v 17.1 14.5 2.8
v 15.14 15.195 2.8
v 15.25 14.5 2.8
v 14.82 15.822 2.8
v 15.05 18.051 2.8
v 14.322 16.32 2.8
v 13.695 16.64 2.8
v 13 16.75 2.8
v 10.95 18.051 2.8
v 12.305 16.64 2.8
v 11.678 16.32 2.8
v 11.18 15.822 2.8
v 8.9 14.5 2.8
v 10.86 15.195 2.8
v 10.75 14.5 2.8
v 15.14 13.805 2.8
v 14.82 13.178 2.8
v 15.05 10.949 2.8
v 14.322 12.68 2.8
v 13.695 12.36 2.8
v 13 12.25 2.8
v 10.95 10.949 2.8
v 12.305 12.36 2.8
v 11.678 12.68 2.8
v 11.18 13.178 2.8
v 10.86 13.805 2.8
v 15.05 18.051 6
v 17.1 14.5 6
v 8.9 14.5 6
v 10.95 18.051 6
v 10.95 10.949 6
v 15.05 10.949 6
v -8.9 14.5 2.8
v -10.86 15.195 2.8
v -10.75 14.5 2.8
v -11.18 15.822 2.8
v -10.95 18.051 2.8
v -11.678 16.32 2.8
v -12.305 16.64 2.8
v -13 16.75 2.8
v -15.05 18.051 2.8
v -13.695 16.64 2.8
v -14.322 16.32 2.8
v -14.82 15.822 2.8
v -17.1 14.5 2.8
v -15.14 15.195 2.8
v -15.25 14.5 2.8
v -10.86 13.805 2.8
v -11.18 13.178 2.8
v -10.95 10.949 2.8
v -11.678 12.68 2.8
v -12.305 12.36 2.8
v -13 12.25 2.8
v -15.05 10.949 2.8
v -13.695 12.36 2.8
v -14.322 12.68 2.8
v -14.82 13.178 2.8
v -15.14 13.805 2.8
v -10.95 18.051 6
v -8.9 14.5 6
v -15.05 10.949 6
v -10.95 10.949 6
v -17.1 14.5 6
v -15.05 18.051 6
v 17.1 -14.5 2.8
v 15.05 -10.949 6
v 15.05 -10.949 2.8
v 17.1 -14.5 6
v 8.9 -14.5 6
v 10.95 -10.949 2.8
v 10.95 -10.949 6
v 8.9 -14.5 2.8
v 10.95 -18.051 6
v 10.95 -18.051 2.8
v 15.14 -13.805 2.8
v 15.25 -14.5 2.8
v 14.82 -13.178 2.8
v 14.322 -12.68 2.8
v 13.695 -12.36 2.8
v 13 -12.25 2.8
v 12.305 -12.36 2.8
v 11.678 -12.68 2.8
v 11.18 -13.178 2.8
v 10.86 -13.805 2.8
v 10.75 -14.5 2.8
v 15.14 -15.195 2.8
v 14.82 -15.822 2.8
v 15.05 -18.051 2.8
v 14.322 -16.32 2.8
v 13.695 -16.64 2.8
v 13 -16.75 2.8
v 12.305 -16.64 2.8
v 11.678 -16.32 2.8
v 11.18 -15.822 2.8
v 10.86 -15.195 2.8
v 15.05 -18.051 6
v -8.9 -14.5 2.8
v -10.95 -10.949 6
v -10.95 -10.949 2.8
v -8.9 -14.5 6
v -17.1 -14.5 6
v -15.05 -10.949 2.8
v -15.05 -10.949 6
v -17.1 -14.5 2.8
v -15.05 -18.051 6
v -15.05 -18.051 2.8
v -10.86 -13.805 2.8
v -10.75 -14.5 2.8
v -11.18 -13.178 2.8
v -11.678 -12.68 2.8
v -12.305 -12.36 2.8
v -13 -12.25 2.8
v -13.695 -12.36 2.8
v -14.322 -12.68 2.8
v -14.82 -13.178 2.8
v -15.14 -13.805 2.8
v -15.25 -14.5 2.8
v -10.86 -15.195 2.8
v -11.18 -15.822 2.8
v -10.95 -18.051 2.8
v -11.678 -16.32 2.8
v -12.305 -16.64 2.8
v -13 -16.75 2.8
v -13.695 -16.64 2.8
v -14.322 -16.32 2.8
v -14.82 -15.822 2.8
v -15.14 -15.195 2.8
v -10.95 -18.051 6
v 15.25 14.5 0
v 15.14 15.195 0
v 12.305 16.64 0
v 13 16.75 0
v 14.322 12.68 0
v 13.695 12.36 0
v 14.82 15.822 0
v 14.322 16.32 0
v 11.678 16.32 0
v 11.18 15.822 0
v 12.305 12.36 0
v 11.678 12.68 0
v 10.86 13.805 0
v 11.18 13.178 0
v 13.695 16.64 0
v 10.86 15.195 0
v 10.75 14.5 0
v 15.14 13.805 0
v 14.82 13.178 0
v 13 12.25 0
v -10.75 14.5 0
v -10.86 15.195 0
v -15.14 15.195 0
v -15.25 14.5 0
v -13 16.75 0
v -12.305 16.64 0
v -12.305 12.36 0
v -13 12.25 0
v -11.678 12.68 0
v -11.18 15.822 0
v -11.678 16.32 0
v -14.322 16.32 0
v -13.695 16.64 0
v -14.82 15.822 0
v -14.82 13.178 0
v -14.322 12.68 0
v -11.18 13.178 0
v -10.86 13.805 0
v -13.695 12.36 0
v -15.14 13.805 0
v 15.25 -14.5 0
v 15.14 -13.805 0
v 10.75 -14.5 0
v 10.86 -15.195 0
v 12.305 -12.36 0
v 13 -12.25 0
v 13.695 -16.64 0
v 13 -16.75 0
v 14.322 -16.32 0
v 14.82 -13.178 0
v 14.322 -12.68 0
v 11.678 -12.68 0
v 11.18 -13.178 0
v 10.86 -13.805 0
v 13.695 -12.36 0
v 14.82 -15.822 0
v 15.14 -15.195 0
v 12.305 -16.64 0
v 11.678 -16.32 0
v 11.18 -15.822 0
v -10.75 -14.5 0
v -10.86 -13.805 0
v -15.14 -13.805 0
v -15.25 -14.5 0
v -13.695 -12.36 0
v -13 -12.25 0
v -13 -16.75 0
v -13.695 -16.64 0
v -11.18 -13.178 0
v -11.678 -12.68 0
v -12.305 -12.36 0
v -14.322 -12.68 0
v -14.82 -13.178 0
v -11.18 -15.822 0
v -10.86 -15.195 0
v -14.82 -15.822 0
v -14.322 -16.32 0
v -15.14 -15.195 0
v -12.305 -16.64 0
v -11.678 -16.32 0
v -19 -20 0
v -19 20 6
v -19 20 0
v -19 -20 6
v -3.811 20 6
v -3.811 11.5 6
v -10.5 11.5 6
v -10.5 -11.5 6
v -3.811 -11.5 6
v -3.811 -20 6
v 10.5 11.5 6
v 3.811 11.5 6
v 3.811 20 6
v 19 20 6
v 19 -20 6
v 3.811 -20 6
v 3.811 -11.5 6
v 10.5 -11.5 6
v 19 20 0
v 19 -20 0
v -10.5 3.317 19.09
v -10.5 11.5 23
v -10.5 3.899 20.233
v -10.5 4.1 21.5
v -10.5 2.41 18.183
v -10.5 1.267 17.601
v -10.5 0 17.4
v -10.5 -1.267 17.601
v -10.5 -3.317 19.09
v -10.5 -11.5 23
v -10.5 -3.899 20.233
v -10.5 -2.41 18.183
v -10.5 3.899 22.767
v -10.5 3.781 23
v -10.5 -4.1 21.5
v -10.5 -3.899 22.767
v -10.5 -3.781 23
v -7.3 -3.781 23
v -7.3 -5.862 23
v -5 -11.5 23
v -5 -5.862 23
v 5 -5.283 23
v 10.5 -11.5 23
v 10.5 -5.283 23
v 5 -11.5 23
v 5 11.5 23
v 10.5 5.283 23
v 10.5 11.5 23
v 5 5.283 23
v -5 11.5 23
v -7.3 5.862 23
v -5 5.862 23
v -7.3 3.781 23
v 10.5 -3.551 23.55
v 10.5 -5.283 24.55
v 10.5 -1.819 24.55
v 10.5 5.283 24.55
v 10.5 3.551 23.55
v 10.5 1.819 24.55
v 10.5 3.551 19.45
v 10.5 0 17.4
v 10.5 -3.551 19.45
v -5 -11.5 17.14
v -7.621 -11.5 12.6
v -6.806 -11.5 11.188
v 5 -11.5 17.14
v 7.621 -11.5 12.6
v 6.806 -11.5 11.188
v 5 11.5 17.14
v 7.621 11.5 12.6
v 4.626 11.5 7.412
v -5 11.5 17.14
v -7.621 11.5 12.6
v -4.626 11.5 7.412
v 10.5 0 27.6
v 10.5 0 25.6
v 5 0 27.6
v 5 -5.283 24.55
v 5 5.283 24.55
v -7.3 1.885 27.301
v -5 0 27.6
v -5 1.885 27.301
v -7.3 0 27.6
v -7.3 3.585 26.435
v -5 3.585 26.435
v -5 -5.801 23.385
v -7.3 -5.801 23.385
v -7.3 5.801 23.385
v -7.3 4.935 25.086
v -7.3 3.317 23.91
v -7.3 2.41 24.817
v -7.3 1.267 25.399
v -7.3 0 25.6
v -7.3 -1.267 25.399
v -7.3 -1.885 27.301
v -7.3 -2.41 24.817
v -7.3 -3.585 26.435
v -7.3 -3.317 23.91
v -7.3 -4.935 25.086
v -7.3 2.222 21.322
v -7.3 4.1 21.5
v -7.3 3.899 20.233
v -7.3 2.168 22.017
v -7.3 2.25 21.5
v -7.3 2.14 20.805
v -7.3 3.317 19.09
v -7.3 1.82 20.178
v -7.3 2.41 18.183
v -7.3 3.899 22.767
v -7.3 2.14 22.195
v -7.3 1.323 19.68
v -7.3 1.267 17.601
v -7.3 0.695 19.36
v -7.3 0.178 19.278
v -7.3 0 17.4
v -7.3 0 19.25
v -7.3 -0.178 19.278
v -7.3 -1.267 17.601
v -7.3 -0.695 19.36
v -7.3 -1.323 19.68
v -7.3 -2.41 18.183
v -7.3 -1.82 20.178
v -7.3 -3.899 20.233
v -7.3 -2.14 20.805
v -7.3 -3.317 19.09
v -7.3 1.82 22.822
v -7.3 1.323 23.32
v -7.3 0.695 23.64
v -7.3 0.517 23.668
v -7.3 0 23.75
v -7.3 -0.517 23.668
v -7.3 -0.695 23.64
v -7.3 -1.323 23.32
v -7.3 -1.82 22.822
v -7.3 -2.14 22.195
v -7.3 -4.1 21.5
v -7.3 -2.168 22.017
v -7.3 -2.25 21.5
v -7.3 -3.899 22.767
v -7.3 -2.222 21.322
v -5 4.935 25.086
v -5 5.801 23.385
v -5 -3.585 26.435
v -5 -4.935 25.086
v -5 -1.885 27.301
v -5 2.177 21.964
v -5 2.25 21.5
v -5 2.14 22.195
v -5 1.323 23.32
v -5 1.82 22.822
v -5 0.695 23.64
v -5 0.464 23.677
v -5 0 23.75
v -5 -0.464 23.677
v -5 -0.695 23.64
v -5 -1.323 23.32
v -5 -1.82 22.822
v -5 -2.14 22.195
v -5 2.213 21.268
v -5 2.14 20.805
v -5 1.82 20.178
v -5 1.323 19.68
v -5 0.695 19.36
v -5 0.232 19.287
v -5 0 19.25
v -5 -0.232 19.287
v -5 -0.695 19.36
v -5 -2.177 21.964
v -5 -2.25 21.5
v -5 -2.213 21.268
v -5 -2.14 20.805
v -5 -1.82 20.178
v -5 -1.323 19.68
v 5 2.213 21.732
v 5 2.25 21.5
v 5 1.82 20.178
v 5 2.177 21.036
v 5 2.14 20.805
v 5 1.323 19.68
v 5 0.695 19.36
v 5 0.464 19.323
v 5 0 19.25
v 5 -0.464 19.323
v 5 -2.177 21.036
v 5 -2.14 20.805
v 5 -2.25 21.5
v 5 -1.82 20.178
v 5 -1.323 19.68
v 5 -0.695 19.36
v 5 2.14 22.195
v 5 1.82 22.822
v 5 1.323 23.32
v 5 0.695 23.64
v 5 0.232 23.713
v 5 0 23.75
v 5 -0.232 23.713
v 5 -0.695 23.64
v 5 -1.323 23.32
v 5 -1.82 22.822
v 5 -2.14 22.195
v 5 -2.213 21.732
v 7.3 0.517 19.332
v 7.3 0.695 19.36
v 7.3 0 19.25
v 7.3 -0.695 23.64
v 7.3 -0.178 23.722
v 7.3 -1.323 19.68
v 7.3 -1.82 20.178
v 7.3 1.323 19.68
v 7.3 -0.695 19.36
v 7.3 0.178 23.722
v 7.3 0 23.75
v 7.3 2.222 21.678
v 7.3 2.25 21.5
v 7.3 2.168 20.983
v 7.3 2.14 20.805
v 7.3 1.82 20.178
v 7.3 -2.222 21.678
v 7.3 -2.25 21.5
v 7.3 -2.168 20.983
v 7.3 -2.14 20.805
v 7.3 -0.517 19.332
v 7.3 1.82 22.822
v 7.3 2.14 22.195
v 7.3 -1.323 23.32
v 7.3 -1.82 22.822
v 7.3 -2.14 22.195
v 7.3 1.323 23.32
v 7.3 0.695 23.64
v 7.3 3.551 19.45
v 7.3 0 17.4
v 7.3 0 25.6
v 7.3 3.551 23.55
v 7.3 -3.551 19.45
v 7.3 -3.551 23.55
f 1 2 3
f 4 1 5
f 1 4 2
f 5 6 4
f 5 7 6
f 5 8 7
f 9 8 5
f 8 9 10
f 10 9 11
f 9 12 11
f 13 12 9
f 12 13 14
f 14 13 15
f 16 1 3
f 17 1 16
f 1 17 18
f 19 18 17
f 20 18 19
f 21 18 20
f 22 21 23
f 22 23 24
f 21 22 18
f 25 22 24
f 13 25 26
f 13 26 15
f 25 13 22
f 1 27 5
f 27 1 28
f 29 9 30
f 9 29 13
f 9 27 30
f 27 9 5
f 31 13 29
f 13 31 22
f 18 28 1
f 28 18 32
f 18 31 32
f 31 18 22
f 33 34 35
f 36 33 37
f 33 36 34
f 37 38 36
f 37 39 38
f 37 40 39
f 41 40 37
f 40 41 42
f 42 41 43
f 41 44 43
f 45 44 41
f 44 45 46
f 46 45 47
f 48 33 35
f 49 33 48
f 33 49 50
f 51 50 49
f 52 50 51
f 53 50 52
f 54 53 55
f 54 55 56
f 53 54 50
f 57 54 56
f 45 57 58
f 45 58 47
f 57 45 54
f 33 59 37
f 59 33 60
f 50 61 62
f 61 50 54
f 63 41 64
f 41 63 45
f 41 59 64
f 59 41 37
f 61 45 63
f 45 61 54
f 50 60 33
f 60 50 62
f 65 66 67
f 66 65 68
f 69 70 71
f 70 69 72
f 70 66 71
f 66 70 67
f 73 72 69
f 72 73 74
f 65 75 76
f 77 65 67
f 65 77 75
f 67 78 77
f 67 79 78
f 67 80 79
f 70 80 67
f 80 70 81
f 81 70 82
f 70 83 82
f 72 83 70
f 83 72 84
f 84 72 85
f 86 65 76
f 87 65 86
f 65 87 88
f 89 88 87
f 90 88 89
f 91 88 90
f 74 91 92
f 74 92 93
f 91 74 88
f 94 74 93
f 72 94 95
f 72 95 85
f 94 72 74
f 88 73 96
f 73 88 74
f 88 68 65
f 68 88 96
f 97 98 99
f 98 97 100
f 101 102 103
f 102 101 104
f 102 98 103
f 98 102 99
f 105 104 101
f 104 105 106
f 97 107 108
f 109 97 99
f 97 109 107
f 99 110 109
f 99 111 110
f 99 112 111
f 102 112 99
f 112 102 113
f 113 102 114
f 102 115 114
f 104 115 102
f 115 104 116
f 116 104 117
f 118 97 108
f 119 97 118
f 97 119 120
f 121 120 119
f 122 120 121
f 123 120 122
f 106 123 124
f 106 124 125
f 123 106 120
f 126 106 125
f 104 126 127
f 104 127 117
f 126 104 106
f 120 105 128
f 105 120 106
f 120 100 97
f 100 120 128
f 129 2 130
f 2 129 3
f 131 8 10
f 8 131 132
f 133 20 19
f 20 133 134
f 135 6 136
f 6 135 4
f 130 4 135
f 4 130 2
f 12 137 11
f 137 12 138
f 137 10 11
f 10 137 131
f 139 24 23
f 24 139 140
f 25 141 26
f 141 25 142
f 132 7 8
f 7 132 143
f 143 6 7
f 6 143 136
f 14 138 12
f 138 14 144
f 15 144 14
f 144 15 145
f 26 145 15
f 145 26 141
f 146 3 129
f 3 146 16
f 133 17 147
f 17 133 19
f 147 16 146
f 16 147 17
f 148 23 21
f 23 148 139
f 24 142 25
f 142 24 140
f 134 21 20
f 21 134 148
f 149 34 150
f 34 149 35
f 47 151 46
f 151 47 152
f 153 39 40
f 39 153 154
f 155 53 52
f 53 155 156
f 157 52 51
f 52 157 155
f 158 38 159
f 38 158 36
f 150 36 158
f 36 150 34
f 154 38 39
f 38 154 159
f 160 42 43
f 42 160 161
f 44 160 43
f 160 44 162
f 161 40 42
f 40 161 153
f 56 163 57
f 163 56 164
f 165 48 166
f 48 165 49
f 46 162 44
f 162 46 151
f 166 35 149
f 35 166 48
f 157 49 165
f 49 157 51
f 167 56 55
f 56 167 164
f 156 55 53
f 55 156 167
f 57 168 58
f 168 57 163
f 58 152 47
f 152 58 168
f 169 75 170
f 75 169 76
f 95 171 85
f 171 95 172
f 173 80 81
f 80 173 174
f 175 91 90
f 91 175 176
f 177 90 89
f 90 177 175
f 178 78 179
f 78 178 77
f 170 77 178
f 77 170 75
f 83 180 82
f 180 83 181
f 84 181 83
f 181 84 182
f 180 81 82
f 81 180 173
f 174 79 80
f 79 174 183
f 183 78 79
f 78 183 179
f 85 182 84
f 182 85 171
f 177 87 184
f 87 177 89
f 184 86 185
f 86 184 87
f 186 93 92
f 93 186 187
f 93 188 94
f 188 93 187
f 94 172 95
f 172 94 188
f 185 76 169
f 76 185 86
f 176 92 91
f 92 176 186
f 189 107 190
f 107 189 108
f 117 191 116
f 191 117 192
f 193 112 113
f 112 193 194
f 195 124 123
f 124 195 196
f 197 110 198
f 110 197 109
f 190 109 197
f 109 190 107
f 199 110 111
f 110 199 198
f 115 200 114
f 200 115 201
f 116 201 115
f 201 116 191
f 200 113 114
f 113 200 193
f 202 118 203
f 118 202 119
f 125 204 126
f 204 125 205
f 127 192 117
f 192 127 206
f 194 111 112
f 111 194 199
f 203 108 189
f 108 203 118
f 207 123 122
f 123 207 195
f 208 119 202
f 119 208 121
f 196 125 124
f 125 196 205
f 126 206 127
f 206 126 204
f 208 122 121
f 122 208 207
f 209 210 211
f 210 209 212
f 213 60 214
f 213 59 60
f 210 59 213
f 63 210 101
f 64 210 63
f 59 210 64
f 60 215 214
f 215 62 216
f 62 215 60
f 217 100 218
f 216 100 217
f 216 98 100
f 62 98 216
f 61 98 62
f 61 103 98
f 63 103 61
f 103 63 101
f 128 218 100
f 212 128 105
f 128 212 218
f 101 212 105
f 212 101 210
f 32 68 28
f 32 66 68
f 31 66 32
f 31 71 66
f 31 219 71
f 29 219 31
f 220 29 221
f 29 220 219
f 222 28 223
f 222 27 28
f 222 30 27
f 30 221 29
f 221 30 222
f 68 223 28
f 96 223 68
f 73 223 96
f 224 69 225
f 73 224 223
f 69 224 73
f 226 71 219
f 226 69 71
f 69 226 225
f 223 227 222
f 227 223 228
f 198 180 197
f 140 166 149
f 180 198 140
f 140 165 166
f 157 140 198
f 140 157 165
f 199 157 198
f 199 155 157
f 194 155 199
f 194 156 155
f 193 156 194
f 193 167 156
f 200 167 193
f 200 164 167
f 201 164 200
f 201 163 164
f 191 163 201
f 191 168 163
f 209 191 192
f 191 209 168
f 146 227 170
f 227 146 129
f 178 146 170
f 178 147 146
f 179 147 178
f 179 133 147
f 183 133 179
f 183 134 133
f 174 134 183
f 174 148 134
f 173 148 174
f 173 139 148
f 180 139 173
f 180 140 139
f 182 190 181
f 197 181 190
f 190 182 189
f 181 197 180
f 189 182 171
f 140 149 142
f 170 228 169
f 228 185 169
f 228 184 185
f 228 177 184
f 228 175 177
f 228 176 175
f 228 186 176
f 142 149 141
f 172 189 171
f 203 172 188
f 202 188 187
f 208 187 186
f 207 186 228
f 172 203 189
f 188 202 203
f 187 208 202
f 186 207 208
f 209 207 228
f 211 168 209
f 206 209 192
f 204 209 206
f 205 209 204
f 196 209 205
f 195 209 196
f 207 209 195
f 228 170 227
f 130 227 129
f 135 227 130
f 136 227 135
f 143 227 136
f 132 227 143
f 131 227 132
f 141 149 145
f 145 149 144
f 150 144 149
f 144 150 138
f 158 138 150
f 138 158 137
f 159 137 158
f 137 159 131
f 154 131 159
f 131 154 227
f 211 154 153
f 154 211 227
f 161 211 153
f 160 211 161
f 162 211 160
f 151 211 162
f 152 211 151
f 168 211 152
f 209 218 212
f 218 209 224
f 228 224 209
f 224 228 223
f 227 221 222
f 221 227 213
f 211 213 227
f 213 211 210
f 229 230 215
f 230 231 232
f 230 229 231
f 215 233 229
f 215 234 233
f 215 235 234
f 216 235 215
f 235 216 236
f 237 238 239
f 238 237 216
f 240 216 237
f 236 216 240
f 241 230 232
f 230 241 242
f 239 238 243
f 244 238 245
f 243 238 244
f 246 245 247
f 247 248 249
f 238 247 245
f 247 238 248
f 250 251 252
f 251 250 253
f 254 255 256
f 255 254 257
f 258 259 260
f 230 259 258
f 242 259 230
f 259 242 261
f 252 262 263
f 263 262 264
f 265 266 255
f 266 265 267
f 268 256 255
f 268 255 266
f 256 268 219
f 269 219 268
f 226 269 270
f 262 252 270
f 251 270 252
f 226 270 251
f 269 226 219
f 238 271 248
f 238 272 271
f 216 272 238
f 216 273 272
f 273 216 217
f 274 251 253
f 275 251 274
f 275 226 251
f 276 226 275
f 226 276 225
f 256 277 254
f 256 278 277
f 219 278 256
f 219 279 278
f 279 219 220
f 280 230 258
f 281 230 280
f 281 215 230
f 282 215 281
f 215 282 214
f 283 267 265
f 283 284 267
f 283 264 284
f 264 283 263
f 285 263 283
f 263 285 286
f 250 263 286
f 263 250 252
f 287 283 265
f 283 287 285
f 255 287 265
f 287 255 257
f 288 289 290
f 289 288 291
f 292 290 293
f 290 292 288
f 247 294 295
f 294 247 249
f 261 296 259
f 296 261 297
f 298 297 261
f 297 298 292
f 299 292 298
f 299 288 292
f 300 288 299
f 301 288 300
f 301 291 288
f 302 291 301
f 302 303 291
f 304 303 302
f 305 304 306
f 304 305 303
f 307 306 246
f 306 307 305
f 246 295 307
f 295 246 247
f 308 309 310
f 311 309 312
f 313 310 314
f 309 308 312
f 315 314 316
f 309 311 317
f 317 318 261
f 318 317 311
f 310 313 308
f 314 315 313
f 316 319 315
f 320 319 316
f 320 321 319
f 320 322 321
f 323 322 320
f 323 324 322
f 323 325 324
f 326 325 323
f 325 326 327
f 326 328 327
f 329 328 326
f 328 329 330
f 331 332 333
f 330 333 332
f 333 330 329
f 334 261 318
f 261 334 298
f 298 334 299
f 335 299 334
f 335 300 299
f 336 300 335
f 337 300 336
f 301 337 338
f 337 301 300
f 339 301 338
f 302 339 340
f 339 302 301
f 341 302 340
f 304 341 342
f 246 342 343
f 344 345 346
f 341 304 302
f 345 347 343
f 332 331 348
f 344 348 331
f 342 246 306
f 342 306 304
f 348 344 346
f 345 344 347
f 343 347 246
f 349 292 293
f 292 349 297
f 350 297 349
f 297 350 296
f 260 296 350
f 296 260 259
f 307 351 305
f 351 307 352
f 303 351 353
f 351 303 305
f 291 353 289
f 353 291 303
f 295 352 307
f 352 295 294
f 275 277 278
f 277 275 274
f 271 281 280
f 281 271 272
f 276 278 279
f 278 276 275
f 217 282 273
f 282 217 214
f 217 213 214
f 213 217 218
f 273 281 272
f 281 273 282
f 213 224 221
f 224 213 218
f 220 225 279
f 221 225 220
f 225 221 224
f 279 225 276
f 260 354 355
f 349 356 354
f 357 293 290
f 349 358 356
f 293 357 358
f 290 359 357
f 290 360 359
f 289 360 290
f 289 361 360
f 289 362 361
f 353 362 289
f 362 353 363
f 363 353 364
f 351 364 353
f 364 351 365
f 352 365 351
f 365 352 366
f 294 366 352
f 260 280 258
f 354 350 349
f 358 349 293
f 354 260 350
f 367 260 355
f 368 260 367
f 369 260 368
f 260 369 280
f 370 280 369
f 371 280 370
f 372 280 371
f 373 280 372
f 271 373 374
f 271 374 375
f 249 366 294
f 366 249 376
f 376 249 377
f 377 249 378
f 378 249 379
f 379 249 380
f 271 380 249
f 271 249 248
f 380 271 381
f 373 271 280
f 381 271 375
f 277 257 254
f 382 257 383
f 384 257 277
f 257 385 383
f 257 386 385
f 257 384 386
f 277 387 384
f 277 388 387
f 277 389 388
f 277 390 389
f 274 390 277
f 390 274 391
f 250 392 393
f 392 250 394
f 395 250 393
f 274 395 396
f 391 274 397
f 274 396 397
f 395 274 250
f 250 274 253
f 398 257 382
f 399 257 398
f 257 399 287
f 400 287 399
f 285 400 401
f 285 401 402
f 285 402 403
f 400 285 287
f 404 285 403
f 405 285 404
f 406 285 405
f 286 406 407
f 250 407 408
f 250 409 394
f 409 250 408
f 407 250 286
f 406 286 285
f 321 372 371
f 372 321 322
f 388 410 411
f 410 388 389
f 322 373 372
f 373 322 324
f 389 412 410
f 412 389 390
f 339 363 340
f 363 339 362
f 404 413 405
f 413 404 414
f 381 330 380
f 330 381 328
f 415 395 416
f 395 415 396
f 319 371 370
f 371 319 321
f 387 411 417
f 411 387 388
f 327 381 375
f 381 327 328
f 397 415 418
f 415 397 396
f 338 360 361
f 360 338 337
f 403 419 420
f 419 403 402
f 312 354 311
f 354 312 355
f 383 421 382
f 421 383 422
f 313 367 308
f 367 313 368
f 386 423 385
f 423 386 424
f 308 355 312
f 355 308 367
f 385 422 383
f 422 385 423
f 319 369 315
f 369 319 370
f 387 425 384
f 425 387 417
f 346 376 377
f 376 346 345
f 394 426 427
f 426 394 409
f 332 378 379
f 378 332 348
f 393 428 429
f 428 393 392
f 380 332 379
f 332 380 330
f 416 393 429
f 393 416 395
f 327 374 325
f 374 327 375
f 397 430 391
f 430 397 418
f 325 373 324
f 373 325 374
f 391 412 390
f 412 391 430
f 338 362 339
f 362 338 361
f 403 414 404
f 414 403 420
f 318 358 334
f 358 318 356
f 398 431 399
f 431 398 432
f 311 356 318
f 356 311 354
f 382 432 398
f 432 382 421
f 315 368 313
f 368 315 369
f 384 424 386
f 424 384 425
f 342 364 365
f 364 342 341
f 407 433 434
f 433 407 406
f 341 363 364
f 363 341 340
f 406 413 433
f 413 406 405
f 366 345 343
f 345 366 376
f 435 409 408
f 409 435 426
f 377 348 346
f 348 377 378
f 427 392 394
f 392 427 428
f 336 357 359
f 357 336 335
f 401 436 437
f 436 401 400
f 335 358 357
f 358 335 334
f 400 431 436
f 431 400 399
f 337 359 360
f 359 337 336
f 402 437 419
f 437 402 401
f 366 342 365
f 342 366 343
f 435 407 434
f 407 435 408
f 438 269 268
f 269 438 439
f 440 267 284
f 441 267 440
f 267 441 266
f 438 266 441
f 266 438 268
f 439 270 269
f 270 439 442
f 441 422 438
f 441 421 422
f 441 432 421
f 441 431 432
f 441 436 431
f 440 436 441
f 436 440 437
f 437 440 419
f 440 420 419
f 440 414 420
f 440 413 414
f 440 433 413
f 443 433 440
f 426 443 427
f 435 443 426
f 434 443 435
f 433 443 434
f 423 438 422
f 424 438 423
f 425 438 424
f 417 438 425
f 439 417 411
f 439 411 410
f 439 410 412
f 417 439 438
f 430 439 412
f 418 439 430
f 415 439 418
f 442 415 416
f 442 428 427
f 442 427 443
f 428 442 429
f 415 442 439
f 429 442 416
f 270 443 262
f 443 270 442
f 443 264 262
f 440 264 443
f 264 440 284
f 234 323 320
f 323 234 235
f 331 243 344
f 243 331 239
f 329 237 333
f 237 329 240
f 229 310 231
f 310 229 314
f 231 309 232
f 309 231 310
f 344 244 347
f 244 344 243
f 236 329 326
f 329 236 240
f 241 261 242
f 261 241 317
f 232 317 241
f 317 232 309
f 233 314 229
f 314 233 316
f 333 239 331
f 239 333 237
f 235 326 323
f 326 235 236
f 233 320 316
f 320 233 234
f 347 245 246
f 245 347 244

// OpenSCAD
// Hexagon Nut Holder
// Inspired/derived from:
// http://www.thingiverse.com/thing:22065

// Which is derived from:
// http://www.thingiverse.com/thing:14942
// http://www.thingiverse.com/thing:14814
// And is a drop-in replacement for:
// http://www.thingiverse.com/thing:10287


// screw/nut dimensions
// http://www.fairburyfastener.com/xdims_metric_nuts.htm
screw_dia = 4.5;	// M3 = 3 mm, M4 = 4 mm - orig. 3.4
nut_dia = 8.2;		// M3 = 6 mm, M4 = 7.7 mm - orig. 6.5
nut_height = 3.2; 	// M3 = 2.3 mm, M4 = 3 mm - orig. 3

// main body dimensions
body_width = 21;
gap_width = 10;
body_height = 23;	// original height: 22 mm
body_length = 40;
epsilon = 0.1; // small tolerance used for CSG subtraction/addition


// Linear Bearing LM8UU
// 24x15mm, Inside diameter: 8mm
//linearBearing(model="LM8UU");
LM8UU_dia = 15.5; // including 0.5 margin
screw_elevation = body_height-1.5;

// mounting plate dimensions
plate_height = 6;
plate_length = body_length;
plate_width = 38;
screw_space_x = 26;
screw_space_y = 29;
lm8uu_length = 23;

HexagonNutHolder();

module hexagonNutHole() {
	couplingNutWidth = 13;	// distance from flat to flat = 13mm
	couplingNutLength = 35; // length of the coupling nut = 35mm
	extramargin = 0.2; // margin when printing (0.3). TODO: can be even smaller. 0.2?
	
	Num_Sides = 6;			// Hexagon = 6
	Nut_Flats = couplingNutWidth+extramargin; 	// Measure across the flats including margin
	Flats_Rad = Nut_Flats/2;
	Nut_Rad = Flats_Rad / cos(180/Num_Sides);

	// height from bottom of plate
	// 6 mm from top flat to plate
	plateMargin = 6; // originally 2 mm

	// bushing hole	
	//translate([0,0,LM8UU_dia/2+plateMargin]) rotate([90,0,0]) cylinder(r=LM8UU_dia/2, h=body_length+2*epsilon, center=true);
	
	// hex nut hole	
	translate([0,0,Nut_Flats/2+plateMargin]) rotate([90,0,0]) cylinder(r=Nut_Rad,h=body_length+2*epsilon,$fn=Num_Sides, center=true);
}

module mount_plate() {
	difference()
	{
		//bottom plate
		translate([-plate_width/2,-plate_length/2,0])
		cube([plate_width,plate_length,plate_height]);

		if (true) {
			// nut traps
			translate([screw_space_x/2,screw_space_y/2,plate_height-nut_height])
			cylinder(r=nut_dia/2, h=nut_height+epsilon, $fn=6);
			translate([-screw_space_x/2,screw_space_y/2,plate_height-nut_height])
			cylinder(r=nut_dia/2, h=nut_height+epsilon, $fn=6);
			translate([screw_space_x/2,-screw_space_y/2,plate_height-nut_height])
			cylinder(r=nut_dia/2, h=nut_height+epsilon, $fn=6);
			translate([-screw_space_x/2,-screw_space_y/2,plate_height-nut_height])
			cylinder(r=nut_dia/2, h=nut_height+epsilon, $fn=6);

			// screw holes
			translate([screw_space_x/2,screw_space_y/2,-epsilon])
			cylinder(r=screw_dia/2, h=plate_height+epsilon, $fn=20);
			translate([-screw_space_x/2,screw_space_y/2,-epsilon])
			cylinder(r=screw_dia/2, h=plate_height+epsilon, $fn=20);
			translate([screw_space_x/2,-screw_space_y/2,-epsilon])
			cylinder(r=screw_dia/2, h=plate_height+epsilon, $fn=20);
			translate([-screw_space_x/2,-screw_space_y/2,-epsilon])
			cylinder(r=screw_dia/2, h=plate_height+epsilon, $fn=20);
		}		
	}
}

module HexagonNutHolder() {
	// main body
	difference()
	{
		union()
		{
			// bottom mount plate
			mount_plate();

			// main trap
			translate([-body_width/2,-(lm8uu_length/2),0])
			cube([body_width,lm8uu_length,body_height]);

			// nut trap surround
			translate([gap_width/2,0,screw_elevation])
			rotate([0,90,0])
			cylinder(r=nut_dia/2+2, h=body_width/2 - gap_width/2, $fn=6);

			// screw hole surround
			translate([-gap_width/2,0,screw_elevation])
			rotate([0,-90,0])
			cylinder(r=nut_dia/2+2, h=(body_width-gap_width)/2 - nut_height, $fn=20);
		}
		
		// hole for the coupling or hexagon bolt
		hexagonNutHole();
		
		// top gap
		translate([0,0,20])
		cube([gap_width,body_length,20],center=true);

		// screw hole (one all the way through)
		translate([0,0,screw_elevation])
		rotate([0,90,0])
		cylinder(r=screw_dia/2, h=30, center=true, $fn=20);

		// nut trap
		translate([body_width/2-nut_height,0,screw_elevation])
		rotate([0,90,0])
		cylinder(r=nut_dia/2, h=nut_height+epsilon,$fn=6);

		// screw hole
		translate([-(body_width/2-nut_height),0,screw_elevation])
		rotate([0,-90,0])
		cylinder(r=nut_dia/2, h=nut_height+epsilon,$fn=20);
	}
}
